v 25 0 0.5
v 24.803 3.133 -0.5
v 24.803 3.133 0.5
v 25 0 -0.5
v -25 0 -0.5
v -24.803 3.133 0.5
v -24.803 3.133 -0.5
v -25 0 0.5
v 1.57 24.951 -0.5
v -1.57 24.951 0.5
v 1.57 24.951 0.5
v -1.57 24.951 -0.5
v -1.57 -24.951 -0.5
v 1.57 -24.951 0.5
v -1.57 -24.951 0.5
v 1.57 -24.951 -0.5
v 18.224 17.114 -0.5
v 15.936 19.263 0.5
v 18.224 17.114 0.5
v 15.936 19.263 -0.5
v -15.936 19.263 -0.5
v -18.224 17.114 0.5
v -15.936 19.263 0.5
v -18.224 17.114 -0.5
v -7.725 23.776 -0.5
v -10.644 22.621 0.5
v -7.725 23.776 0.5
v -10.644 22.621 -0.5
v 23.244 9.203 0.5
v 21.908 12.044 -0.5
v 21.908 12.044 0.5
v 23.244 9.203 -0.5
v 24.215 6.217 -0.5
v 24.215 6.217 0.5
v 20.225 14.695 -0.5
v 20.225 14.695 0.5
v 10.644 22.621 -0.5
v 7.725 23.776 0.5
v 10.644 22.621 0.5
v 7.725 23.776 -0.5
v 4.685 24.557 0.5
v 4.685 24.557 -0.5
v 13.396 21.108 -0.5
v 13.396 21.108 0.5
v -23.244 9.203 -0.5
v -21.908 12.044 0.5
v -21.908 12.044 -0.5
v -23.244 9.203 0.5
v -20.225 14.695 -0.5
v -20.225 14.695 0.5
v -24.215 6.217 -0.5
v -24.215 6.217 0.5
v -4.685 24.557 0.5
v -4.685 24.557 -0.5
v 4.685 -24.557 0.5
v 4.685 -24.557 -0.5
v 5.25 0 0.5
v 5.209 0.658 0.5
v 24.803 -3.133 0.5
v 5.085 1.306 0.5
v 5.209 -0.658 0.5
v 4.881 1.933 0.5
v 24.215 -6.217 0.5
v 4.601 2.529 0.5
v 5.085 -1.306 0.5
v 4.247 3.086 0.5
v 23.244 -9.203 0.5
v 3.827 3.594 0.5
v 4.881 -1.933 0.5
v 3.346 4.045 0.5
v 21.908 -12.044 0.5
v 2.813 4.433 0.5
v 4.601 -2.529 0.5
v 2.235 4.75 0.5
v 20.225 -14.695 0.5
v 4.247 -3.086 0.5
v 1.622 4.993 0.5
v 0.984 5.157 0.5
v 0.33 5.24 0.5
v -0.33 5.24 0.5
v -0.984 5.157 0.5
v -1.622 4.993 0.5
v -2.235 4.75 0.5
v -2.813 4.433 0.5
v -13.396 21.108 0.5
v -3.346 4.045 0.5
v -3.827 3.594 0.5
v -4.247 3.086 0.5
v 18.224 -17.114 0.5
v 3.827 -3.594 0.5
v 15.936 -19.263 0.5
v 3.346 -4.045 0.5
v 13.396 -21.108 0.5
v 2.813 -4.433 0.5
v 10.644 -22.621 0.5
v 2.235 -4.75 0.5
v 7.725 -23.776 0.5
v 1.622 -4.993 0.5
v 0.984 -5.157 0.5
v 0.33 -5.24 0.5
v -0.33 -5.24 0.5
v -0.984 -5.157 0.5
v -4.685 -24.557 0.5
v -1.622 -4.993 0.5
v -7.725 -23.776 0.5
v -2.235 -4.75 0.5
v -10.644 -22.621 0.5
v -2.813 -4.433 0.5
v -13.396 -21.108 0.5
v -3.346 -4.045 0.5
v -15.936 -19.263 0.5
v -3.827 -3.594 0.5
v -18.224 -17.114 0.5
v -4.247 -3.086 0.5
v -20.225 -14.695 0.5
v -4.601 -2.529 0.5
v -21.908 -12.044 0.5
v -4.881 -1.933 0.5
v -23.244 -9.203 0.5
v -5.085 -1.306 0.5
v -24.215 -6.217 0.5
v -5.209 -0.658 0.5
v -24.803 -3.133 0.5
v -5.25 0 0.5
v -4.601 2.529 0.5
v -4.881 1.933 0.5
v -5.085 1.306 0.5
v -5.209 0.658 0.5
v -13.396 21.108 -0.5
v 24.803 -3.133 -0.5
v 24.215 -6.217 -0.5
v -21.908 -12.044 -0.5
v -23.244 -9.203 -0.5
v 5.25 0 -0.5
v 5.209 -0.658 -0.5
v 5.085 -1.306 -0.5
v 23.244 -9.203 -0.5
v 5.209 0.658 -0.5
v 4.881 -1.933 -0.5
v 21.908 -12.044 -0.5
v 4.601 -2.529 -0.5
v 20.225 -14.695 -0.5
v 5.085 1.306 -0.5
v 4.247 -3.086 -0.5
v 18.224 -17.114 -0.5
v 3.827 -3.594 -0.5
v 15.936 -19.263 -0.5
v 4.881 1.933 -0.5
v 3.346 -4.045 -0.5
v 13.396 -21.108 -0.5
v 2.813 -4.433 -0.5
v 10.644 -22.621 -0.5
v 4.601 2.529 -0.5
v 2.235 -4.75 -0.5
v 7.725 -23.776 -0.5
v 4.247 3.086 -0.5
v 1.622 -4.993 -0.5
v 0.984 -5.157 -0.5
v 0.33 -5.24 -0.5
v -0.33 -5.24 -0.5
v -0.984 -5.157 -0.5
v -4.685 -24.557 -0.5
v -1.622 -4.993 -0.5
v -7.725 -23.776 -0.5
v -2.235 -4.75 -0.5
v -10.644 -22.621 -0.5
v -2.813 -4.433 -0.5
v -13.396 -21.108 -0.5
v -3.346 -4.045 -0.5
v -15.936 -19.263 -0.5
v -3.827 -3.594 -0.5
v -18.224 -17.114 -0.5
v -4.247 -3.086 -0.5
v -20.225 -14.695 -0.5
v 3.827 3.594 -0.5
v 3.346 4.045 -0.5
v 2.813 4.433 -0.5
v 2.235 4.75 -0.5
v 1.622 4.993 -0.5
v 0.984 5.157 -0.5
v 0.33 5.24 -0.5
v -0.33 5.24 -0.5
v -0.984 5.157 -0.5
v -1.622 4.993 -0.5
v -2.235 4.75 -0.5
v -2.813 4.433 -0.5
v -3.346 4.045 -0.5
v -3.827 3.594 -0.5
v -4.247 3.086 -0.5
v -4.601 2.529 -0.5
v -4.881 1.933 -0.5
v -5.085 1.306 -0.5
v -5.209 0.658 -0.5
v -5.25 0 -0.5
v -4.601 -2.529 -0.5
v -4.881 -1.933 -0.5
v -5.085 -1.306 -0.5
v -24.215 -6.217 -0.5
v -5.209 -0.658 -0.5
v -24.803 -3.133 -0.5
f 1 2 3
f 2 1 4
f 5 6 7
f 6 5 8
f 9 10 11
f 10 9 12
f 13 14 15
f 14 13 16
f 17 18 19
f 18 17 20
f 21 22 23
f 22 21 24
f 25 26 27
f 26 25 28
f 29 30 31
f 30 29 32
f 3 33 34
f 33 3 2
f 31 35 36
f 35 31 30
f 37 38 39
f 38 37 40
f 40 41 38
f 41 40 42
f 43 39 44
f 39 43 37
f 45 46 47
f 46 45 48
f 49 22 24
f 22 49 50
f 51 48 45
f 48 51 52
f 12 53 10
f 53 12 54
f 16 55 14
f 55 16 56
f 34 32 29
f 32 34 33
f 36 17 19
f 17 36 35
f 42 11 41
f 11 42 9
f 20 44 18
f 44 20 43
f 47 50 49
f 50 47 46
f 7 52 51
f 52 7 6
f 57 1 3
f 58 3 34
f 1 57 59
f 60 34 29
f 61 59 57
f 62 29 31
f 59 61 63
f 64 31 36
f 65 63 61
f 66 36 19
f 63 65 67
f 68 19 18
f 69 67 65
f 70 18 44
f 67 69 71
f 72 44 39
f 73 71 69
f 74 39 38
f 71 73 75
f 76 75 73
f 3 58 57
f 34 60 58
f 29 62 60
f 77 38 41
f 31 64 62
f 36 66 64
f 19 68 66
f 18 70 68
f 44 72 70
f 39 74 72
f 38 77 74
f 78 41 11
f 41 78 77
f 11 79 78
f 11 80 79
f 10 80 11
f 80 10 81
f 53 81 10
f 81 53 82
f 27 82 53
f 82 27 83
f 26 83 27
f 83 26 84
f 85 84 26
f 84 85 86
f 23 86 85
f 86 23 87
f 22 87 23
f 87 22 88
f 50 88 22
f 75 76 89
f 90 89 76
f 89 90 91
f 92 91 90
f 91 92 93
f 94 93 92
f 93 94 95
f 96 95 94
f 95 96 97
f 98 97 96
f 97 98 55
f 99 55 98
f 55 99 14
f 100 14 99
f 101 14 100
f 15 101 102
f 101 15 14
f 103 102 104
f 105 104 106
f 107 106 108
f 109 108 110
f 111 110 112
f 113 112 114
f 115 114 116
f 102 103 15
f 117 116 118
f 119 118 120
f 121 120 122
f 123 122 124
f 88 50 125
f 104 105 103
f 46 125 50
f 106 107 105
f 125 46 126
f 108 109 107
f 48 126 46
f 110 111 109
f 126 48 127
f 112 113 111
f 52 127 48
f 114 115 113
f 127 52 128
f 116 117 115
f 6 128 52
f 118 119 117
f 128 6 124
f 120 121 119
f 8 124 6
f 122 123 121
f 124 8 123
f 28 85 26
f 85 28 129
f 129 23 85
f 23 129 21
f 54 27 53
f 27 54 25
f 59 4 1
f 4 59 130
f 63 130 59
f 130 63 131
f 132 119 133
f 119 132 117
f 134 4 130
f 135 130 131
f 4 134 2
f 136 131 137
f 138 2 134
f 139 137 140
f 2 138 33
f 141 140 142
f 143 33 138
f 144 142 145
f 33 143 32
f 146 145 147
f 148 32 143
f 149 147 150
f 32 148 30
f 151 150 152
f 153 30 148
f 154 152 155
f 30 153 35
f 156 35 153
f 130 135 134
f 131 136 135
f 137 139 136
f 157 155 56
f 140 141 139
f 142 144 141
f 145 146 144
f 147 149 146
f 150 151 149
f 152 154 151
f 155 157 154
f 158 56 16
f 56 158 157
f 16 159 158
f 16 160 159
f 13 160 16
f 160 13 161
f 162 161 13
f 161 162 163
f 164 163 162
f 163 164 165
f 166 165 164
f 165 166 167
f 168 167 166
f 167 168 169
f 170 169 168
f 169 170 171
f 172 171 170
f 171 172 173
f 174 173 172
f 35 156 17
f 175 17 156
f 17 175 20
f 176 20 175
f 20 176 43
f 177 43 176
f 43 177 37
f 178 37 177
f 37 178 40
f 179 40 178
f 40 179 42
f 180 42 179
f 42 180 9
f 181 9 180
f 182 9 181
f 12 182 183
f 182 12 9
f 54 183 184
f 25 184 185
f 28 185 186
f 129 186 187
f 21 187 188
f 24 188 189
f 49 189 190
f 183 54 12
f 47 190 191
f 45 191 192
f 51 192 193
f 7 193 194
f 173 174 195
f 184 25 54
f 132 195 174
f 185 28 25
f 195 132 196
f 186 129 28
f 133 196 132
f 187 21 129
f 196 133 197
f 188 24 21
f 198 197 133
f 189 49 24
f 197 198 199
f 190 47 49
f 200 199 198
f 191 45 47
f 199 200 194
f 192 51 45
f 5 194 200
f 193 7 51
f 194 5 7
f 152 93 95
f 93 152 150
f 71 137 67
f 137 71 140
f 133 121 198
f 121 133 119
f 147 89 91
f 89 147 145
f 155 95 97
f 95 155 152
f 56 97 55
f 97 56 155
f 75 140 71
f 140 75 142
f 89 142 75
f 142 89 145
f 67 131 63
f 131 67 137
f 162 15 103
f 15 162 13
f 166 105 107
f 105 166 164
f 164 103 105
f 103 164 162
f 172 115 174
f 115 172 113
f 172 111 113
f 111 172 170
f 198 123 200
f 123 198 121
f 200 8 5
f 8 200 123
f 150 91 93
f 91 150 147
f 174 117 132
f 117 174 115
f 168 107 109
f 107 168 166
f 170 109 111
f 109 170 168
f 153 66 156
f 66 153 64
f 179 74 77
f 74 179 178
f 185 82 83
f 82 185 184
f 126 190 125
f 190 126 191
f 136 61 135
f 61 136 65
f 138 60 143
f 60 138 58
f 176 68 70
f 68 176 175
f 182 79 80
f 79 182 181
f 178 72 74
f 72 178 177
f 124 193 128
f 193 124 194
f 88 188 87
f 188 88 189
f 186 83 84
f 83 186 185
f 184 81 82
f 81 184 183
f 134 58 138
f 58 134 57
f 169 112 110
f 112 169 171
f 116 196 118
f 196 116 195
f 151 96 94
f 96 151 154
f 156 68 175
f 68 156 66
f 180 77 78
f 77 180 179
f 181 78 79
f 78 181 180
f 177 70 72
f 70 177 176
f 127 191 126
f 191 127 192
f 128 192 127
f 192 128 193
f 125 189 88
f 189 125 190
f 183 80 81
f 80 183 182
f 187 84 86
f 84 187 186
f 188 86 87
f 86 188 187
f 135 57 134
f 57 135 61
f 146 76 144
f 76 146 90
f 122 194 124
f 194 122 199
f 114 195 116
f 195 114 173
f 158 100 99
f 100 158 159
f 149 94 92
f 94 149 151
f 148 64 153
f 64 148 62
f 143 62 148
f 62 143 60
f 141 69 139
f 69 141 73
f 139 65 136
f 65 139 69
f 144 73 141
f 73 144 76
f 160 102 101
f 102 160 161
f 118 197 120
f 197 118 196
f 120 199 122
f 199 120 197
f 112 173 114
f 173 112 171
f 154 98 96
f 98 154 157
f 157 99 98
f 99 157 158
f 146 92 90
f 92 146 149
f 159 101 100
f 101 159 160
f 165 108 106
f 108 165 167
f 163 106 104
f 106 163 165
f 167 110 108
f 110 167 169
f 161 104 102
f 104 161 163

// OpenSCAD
$fn = 50;


difference() {
	union() {
		translate(v = [0, 0, -0.5000000000]) {
			cylinder(h = 1, r = 25.0000000000);
		}
	}
	union() {
		translate(v = [0, 0, -100.0000000000]) {
			cylinder(h = 200, r = 5.2500000000);
		}
	}
}
